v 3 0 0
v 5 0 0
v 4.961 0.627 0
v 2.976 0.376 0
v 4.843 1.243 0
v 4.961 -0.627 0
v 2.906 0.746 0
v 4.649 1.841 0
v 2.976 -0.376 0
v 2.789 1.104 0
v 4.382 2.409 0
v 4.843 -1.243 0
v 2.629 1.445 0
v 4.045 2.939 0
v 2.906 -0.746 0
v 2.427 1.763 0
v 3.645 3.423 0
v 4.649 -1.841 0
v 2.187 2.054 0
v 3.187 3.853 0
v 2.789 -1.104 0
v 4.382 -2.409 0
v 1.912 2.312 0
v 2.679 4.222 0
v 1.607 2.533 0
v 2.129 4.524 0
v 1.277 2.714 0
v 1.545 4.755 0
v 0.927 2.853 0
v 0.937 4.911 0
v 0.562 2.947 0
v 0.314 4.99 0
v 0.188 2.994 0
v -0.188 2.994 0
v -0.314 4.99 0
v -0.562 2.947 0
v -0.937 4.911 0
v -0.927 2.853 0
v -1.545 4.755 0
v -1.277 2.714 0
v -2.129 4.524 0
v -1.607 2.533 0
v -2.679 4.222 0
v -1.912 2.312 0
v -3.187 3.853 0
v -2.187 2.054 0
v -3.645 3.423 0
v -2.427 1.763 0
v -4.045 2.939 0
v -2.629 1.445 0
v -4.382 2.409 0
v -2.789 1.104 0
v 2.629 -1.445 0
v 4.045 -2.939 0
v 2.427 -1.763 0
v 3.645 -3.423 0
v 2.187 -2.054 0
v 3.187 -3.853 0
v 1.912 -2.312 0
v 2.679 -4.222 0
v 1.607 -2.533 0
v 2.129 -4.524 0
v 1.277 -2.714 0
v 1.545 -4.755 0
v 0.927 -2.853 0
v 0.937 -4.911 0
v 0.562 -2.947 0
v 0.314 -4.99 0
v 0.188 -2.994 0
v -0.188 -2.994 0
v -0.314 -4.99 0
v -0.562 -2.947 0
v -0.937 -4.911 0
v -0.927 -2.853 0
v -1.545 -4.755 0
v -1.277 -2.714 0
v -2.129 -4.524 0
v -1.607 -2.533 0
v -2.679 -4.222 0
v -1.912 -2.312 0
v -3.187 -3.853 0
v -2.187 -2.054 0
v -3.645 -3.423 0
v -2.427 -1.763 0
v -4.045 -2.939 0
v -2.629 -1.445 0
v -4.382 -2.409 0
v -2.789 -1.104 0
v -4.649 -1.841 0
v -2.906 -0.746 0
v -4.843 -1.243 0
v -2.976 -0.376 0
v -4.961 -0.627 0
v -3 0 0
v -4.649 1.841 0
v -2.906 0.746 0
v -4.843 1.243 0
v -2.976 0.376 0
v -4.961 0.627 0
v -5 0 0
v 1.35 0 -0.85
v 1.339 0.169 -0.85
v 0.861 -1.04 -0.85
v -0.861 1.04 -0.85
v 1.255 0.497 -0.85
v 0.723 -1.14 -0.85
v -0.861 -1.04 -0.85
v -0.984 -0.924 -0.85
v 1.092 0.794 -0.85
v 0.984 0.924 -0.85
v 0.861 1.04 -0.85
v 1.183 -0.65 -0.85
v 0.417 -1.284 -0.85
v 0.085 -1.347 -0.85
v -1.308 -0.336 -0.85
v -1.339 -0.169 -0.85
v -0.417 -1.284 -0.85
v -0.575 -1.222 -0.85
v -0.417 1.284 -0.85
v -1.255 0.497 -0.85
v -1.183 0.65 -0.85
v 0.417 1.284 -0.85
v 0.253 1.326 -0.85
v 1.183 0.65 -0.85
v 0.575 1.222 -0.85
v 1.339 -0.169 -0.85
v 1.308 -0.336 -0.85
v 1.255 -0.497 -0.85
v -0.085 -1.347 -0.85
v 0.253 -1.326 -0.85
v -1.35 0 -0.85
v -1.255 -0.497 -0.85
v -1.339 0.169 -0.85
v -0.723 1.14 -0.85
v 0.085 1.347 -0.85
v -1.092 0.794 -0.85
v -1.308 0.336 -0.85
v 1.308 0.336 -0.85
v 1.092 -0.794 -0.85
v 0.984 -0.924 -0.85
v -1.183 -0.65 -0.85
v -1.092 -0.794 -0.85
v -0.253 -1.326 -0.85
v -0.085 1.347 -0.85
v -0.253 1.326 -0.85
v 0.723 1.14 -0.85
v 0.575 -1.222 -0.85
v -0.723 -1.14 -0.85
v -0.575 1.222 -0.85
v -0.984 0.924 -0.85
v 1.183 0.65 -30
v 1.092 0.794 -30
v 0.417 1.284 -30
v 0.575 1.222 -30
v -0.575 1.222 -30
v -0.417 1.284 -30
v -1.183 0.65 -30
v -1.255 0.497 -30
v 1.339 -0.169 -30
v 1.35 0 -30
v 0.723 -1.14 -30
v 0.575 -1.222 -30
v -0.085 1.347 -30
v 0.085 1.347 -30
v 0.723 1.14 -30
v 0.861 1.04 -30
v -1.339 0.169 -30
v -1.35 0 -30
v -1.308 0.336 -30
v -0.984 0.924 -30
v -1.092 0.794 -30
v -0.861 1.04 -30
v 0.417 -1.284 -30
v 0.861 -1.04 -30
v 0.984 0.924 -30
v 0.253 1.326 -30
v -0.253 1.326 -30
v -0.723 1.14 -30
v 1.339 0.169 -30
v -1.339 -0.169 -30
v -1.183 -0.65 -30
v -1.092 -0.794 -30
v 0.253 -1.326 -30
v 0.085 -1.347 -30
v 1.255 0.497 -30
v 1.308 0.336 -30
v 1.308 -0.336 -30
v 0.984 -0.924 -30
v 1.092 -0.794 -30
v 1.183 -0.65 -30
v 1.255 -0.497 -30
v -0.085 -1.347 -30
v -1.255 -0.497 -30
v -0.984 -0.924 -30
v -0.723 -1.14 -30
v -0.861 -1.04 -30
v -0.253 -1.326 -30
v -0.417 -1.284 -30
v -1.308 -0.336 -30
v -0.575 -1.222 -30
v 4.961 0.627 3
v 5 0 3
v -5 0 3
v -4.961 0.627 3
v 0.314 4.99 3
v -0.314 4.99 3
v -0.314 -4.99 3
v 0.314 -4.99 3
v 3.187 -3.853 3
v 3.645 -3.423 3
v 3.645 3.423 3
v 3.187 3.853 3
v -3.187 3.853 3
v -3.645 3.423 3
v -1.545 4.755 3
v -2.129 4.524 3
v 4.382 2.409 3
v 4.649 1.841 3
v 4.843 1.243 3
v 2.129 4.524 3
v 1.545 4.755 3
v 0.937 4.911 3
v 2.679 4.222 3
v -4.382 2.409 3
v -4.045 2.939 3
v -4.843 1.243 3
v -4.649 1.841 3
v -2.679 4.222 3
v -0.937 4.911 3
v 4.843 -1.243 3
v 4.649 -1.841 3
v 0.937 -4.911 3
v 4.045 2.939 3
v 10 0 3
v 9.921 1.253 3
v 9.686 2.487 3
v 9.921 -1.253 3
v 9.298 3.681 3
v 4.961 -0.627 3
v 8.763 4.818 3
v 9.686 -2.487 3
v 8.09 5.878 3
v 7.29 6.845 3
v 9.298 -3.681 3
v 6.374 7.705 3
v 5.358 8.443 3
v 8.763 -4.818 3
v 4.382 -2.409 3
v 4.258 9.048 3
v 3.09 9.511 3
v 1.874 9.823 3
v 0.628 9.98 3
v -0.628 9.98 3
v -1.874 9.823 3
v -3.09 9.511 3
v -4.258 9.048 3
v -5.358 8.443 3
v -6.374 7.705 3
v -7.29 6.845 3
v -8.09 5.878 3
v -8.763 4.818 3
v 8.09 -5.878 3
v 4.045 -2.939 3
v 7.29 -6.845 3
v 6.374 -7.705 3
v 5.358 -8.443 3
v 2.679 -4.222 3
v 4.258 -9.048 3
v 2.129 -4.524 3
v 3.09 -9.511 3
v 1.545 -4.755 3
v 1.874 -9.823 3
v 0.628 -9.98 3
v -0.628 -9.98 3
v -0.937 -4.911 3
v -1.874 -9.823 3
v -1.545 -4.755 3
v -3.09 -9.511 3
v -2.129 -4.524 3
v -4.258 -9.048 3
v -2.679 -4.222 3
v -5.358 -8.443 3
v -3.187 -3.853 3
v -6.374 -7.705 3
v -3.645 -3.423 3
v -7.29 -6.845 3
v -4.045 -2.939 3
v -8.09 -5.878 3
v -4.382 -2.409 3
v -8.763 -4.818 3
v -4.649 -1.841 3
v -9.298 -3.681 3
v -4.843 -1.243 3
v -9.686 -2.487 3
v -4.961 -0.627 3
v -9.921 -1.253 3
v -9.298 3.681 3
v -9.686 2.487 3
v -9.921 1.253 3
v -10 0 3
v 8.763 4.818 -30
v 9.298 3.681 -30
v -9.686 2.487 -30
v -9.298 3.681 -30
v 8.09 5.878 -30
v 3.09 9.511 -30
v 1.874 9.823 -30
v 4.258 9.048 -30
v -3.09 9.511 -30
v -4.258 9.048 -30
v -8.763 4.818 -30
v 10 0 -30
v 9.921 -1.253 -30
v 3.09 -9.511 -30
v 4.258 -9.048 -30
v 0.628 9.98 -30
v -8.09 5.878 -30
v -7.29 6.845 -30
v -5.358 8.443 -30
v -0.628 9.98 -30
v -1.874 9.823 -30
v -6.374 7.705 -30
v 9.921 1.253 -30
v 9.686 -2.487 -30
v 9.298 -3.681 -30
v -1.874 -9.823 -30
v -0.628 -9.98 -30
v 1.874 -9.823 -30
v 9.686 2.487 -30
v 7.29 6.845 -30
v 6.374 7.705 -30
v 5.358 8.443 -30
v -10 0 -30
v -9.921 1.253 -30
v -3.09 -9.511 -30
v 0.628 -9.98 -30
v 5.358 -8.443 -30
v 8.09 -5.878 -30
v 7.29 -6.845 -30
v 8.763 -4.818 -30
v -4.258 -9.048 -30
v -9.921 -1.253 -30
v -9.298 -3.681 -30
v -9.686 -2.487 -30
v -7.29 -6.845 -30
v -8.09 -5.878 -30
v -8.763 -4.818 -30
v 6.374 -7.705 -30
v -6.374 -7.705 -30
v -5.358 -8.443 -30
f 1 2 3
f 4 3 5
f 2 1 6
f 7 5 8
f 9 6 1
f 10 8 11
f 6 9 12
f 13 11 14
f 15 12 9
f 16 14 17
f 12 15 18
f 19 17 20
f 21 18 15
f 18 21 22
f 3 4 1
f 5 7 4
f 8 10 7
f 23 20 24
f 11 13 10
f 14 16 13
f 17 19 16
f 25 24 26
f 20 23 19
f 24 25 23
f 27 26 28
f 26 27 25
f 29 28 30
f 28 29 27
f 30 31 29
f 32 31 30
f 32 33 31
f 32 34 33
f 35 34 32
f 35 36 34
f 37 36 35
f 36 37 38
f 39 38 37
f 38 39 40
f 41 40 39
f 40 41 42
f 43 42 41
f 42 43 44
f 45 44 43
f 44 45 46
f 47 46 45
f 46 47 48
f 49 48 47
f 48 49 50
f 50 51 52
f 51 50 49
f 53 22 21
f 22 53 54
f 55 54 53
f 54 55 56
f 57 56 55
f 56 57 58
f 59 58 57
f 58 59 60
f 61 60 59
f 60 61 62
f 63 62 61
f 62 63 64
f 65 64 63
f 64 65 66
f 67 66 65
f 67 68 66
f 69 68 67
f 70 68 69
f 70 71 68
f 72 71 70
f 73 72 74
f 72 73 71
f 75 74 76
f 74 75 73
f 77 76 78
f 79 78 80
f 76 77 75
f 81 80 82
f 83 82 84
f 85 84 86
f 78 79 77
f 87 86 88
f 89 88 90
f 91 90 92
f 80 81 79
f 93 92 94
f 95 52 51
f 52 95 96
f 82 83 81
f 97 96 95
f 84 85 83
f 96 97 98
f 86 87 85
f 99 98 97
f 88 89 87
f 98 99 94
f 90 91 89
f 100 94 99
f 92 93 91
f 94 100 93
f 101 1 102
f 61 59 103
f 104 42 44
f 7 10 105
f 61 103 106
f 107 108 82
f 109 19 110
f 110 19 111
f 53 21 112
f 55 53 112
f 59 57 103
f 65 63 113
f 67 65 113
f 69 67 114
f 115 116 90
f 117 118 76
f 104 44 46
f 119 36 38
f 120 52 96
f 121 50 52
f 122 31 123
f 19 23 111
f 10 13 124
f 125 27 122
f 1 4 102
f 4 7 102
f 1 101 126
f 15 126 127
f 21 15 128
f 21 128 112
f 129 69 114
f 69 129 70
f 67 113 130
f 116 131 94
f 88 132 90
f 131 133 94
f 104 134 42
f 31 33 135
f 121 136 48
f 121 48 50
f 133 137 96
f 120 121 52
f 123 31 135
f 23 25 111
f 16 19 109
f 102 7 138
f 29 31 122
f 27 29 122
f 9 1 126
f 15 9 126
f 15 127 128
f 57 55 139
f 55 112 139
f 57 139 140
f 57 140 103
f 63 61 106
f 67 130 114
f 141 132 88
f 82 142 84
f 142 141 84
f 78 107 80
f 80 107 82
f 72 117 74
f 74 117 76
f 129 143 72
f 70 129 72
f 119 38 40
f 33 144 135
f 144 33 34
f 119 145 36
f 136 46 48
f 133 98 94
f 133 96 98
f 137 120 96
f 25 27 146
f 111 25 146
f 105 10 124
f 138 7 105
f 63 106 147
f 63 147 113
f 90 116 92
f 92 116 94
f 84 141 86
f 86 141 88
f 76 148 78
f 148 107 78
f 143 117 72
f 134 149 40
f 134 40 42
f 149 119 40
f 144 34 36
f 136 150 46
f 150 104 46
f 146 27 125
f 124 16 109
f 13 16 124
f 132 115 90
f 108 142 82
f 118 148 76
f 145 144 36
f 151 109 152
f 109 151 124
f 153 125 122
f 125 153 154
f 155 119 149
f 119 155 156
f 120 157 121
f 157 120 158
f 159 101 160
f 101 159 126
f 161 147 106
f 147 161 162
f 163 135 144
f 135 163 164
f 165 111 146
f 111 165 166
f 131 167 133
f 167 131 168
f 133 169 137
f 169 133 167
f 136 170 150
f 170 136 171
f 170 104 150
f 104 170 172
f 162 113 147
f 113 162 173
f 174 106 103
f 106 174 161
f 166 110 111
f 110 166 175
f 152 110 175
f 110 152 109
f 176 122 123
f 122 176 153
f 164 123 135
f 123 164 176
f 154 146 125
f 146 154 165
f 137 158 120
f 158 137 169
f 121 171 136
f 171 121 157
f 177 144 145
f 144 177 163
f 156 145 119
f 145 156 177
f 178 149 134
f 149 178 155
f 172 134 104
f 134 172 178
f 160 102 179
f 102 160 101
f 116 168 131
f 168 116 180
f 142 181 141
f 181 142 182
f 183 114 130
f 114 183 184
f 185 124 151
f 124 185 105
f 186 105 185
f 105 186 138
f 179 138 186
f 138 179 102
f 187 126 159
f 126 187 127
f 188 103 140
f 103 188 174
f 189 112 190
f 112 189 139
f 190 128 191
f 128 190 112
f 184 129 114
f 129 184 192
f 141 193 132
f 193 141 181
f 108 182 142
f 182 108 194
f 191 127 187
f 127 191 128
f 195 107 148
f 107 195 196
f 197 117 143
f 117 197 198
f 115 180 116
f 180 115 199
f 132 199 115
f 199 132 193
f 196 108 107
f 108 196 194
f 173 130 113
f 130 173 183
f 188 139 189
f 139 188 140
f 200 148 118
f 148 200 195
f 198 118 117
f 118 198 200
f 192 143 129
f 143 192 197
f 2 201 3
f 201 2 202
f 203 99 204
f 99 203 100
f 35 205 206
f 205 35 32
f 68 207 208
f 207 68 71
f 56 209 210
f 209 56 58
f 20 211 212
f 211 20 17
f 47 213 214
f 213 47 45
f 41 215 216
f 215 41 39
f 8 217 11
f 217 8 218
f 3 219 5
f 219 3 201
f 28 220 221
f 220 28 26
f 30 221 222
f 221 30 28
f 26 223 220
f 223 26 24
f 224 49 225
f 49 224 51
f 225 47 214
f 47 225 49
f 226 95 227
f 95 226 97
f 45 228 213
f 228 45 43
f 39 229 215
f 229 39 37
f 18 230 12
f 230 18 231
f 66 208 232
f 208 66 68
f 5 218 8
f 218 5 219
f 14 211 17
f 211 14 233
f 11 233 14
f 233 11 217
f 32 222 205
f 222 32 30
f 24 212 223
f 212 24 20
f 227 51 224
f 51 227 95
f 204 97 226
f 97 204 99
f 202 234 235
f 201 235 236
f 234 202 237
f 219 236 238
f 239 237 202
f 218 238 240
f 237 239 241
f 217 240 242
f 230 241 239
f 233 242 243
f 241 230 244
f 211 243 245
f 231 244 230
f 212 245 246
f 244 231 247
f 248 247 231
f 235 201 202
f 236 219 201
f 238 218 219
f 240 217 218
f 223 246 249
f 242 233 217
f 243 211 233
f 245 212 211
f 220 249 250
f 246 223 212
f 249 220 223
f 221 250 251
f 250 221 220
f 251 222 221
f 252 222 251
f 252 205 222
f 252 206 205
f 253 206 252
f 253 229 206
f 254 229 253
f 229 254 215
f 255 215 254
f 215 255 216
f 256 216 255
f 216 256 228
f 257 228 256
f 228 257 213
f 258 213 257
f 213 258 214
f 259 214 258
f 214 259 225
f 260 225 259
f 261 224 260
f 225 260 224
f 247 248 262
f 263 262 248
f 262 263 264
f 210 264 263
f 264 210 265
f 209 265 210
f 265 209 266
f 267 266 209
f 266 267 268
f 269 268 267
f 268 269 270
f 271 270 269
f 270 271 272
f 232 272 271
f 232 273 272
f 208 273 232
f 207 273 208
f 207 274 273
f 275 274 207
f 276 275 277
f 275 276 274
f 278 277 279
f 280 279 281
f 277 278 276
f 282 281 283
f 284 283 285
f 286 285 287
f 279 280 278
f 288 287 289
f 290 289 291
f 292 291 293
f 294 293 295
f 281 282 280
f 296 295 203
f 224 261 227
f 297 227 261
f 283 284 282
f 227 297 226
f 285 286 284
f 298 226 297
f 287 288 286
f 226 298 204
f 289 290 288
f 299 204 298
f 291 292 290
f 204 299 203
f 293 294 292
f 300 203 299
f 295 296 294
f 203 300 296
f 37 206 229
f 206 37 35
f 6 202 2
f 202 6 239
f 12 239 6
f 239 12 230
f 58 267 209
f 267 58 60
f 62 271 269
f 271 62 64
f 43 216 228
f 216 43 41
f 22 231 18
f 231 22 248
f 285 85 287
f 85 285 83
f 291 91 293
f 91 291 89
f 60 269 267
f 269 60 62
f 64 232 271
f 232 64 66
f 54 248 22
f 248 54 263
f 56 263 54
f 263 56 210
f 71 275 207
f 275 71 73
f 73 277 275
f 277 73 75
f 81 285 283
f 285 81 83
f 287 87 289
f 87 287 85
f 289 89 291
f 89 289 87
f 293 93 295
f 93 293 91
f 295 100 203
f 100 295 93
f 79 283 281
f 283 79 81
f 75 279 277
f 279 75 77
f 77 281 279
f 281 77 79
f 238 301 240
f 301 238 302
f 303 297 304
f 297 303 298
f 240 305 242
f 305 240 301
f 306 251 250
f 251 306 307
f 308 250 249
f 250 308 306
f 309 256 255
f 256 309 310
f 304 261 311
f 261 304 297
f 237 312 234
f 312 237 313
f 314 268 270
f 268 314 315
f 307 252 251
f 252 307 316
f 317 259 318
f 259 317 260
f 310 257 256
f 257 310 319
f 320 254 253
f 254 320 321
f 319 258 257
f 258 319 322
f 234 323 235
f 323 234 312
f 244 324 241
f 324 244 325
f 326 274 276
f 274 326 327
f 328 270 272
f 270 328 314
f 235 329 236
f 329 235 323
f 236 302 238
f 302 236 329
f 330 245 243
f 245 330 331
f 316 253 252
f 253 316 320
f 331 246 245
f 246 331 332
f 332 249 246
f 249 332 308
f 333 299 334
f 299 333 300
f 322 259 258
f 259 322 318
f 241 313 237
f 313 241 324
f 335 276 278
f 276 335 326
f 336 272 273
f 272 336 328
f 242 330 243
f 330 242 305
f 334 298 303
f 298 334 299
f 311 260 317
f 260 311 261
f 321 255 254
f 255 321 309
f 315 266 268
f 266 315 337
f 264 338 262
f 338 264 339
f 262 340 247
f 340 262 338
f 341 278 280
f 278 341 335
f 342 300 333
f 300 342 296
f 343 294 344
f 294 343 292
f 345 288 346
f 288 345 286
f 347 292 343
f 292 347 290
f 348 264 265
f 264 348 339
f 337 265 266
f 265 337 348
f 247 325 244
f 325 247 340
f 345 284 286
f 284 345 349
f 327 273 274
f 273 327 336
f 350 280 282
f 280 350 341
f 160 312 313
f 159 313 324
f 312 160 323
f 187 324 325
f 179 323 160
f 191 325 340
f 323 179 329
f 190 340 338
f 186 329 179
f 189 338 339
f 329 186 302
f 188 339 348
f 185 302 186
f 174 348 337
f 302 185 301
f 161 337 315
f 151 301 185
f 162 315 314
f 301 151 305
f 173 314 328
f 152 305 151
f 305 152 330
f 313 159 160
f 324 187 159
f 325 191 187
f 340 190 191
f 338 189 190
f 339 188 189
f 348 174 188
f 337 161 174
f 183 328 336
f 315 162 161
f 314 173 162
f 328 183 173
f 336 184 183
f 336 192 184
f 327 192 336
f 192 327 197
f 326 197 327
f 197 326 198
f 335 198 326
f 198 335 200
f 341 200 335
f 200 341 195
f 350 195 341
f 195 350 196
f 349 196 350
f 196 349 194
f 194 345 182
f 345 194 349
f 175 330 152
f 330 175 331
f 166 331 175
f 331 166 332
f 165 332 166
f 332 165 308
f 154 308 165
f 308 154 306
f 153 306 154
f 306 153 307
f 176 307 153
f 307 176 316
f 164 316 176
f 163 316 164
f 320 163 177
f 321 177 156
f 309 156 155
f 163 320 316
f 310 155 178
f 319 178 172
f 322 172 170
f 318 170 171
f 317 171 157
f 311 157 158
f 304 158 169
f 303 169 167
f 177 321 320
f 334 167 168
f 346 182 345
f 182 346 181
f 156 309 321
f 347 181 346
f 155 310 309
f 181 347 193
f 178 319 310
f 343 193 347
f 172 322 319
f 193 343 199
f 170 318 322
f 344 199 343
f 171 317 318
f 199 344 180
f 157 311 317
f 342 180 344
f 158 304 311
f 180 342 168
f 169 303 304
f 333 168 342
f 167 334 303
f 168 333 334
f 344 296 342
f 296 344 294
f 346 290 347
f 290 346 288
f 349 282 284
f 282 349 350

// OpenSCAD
$fn = 50;

difference() {
	union() {
		translate(v = [0, 0, -30.0]) {
			cylinder(h = 33, r = 10.0);
		}
	}
	union() {
		translate(v = [0, 0, 0]) {
			rotate(a = [0, 0, 0]) {
				difference() {
					union() {
						translate(v = [0, 0, -33.0]) {
							cylinder(h = 33, r = 1.0);
						}
						translate(v = [0, 0, -0.85]) {
							cylinder(h = 0.85, r1 = 1.35, r2 = 3.0);
						}
						translate(v = [0, 0, -33.0]) {
							cylinder(h = 33, r = 1.35);
						}
						translate(v = [0, 0, -33.0]) {
							cylinder(h = 33, r = 1.0);
						}
					}
					union();
				}
			}
		}
		#cylinder(h = 3, r = 5.0);
	}
}
